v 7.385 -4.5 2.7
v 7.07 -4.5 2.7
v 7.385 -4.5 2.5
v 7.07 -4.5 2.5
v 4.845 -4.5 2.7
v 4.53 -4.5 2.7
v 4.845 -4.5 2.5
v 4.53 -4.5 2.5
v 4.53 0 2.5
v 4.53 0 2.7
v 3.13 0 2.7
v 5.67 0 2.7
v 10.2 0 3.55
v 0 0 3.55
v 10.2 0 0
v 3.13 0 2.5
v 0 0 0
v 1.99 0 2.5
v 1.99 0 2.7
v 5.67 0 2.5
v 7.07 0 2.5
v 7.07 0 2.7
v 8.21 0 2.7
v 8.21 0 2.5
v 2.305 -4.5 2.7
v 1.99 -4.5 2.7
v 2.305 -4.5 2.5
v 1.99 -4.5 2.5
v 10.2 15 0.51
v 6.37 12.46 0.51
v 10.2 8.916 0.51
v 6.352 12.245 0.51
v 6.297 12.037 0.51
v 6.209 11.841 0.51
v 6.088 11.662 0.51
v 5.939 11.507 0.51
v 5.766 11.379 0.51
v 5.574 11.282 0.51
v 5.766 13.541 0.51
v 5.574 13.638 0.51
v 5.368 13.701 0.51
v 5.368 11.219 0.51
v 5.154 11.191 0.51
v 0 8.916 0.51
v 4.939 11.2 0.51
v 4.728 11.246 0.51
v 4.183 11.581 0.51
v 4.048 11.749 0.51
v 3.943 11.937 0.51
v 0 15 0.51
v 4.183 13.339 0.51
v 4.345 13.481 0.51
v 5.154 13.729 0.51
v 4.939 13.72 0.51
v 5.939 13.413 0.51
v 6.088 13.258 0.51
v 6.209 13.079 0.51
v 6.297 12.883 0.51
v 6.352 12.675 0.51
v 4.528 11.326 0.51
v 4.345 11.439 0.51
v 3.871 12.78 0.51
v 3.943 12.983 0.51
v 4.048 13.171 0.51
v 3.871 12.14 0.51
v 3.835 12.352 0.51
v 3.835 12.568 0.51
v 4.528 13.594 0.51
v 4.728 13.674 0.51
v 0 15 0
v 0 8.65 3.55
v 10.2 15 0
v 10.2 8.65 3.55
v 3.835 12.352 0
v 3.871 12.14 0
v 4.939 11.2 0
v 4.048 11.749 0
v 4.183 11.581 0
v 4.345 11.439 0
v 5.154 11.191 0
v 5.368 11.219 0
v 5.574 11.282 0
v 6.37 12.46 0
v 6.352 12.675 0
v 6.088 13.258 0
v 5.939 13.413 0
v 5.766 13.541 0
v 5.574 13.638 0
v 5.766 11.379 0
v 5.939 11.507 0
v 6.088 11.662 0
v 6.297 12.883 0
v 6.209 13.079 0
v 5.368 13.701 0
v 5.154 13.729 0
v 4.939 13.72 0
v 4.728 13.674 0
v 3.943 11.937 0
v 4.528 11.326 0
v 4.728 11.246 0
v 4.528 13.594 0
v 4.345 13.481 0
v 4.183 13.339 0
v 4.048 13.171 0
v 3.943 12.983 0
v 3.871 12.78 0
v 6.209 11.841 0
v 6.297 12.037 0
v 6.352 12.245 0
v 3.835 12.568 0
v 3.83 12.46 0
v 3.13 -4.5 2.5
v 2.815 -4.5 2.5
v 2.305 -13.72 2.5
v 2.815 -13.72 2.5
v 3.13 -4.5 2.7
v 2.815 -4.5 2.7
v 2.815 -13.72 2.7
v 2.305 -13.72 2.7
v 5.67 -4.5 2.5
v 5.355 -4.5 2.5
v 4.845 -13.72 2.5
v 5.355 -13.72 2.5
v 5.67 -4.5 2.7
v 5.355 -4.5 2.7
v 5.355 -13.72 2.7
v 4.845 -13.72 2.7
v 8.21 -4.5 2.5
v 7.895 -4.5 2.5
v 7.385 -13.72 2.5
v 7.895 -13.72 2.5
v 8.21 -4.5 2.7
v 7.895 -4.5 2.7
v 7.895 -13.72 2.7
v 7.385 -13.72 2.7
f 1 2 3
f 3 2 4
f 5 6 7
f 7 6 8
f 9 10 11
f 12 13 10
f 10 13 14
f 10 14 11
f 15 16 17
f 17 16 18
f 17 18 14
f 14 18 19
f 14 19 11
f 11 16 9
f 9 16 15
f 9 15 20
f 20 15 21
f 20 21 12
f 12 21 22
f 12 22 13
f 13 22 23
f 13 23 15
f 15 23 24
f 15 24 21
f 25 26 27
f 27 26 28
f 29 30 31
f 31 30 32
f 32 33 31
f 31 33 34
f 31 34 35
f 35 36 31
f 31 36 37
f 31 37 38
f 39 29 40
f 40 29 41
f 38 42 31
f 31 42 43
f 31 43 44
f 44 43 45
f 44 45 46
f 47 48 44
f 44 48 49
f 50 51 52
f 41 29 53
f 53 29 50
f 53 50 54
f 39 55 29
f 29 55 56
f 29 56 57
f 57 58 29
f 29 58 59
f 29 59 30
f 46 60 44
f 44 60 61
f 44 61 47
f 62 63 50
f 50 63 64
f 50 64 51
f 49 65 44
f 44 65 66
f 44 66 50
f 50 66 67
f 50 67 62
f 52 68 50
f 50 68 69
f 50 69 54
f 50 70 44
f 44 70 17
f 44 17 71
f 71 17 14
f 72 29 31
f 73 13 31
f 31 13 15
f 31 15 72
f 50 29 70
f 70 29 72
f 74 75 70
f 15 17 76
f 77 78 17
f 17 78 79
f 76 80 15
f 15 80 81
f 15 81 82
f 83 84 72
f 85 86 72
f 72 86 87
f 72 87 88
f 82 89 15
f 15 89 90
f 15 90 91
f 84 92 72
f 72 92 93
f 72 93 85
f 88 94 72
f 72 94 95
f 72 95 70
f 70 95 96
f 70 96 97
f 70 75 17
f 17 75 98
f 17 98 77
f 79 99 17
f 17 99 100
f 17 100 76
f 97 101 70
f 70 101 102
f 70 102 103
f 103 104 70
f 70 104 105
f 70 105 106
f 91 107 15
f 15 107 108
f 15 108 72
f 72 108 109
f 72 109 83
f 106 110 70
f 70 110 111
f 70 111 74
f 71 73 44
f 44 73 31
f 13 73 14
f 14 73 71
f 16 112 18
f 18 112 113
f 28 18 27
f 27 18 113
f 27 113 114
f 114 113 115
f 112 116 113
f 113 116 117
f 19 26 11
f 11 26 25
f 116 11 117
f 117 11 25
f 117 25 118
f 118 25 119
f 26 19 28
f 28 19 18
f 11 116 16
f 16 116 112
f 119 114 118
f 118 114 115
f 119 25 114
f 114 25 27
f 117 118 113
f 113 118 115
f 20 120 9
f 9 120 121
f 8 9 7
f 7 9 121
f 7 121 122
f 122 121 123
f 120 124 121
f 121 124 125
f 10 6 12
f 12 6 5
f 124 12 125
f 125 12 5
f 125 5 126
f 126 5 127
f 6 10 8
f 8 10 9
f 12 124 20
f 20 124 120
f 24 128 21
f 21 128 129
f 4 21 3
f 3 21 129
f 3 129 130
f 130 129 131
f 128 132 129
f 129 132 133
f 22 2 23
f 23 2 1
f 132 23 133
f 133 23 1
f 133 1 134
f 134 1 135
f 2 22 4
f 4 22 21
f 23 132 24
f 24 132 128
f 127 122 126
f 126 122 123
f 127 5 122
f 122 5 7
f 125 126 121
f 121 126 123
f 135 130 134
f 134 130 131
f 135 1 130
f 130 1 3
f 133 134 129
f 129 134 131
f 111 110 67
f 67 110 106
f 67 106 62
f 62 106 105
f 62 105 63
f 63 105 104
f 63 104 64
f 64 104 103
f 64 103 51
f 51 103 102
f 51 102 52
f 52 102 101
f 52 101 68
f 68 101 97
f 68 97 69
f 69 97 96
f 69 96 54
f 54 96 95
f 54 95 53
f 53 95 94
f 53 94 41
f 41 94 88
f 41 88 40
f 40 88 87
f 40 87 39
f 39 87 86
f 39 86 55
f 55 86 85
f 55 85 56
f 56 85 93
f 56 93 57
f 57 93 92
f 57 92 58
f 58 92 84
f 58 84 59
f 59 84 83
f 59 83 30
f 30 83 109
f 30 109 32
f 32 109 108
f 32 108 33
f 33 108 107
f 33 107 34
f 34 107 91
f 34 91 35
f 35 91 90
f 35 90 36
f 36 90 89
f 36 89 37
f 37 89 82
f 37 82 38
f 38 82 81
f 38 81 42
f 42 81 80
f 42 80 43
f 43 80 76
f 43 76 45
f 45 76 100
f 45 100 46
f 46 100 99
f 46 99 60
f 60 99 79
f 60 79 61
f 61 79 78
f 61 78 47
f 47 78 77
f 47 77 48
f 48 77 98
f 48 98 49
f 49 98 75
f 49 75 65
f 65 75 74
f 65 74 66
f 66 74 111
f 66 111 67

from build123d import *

# Parameters (mm, degrees)
SKETCH1_W           = 10.2
SKETCH1_H           = 15
BOSS_EXTRUDE1_DEPTH = 0.51
SKETCH2_W           = 10.2
SKETCH2_H           = 8.65
BOSS_EXTRUDE2_DEPTH = 3.04
DRAFT1_ANGLE        = 5
SKETCH3_W           = 0.2
SKETCH3_H           = 4.5
EXTRUDE_THIN1_DEPTH = 0.57
SKETCH4_W           = 0.2
SKETCH4_H           = 9.22
EXTRUDE_THIN2_DEPTH = 0.255
LPATTERN1_COUNT     = 3
LPATTERN1_PITCH     = 2.54
CUT_EXTRUDE1_REACH  = 2.51
SKETCH5_R           = 1.27


with BuildPart() as part:
    # Sketch1 → Boss-Extrude1 (new body)
    with BuildSketch(Plane.XY):
        with Locations((5.1, 7.5)):
            Rectangle(SKETCH1_W, SKETCH1_H)
    extrude(amount=BOSS_EXTRUDE1_DEPTH)

    # Sketch2 → Boss-Extrude2 (add)
    with BuildSketch(Plane.XY.offset(0.51)):
        with Locations((5.1, 4.325)):
            Rectangle(SKETCH2_W, SKETCH2_H)
    extrude(amount=BOSS_EXTRUDE2_DEPTH)

    # Draft1
    draft1_faces = [part.faces().sort_by_distance(p)[0] for p in [
        (5.1, 8.65, 2.03),
    ]]
    draft(draft1_faces, Plane.XY.offset(3.55), DRAFT1_ANGLE)

    # Sketch3 → Extrude-Thin1 (add, symmetric)
    with BuildSketch(Plane.ZY.offset(-2.56)):
        with Locations((2.6, -2.25)):
            Rectangle(SKETCH3_W, SKETCH3_H)
    extrude_thin1 = extrude(amount=EXTRUDE_THIN1_DEPTH, both=True)

    # Sketch4 → Extrude-Thin2 (add, symmetric)
    with BuildSketch(Plane.ZY.offset(-2.56)):
        with Locations((2.6, -9.11)):
            Rectangle(SKETCH4_W, SKETCH4_H)
    extrude_thin2 = extrude(amount=EXTRUDE_THIN2_DEPTH, both=True)

    # LPattern1: Extrude-Thin1, Extrude-Thin2 ×3
    with Locations(*[(i * LPATTERN1_PITCH, 0, 0) for i in range(1, LPATTERN1_COUNT)]):
        add(extrude_thin1)
        add(extrude_thin2)

    # Sketch5 → Cut-Extrude1 (cut, up to next)
    with BuildSketch(Plane.XY.offset(0.51), mode=Mode.PRIVATE) as cut_extrude1_sk1:
        with Locations((5.1, 12.46)):
            Circle(SKETCH5_R)
    cut_extrude1_tool1 = extrude(cut_extrude1_sk1.sketch, amount=-CUT_EXTRUDE1_REACH, mode=Mode.PRIVATE) & part.part
    add(cut_extrude1_tool1.solids().sort_by_distance((5.1, 12.46, 0.51))[0], mode=Mode.SUBTRACT)


solid = part.part
